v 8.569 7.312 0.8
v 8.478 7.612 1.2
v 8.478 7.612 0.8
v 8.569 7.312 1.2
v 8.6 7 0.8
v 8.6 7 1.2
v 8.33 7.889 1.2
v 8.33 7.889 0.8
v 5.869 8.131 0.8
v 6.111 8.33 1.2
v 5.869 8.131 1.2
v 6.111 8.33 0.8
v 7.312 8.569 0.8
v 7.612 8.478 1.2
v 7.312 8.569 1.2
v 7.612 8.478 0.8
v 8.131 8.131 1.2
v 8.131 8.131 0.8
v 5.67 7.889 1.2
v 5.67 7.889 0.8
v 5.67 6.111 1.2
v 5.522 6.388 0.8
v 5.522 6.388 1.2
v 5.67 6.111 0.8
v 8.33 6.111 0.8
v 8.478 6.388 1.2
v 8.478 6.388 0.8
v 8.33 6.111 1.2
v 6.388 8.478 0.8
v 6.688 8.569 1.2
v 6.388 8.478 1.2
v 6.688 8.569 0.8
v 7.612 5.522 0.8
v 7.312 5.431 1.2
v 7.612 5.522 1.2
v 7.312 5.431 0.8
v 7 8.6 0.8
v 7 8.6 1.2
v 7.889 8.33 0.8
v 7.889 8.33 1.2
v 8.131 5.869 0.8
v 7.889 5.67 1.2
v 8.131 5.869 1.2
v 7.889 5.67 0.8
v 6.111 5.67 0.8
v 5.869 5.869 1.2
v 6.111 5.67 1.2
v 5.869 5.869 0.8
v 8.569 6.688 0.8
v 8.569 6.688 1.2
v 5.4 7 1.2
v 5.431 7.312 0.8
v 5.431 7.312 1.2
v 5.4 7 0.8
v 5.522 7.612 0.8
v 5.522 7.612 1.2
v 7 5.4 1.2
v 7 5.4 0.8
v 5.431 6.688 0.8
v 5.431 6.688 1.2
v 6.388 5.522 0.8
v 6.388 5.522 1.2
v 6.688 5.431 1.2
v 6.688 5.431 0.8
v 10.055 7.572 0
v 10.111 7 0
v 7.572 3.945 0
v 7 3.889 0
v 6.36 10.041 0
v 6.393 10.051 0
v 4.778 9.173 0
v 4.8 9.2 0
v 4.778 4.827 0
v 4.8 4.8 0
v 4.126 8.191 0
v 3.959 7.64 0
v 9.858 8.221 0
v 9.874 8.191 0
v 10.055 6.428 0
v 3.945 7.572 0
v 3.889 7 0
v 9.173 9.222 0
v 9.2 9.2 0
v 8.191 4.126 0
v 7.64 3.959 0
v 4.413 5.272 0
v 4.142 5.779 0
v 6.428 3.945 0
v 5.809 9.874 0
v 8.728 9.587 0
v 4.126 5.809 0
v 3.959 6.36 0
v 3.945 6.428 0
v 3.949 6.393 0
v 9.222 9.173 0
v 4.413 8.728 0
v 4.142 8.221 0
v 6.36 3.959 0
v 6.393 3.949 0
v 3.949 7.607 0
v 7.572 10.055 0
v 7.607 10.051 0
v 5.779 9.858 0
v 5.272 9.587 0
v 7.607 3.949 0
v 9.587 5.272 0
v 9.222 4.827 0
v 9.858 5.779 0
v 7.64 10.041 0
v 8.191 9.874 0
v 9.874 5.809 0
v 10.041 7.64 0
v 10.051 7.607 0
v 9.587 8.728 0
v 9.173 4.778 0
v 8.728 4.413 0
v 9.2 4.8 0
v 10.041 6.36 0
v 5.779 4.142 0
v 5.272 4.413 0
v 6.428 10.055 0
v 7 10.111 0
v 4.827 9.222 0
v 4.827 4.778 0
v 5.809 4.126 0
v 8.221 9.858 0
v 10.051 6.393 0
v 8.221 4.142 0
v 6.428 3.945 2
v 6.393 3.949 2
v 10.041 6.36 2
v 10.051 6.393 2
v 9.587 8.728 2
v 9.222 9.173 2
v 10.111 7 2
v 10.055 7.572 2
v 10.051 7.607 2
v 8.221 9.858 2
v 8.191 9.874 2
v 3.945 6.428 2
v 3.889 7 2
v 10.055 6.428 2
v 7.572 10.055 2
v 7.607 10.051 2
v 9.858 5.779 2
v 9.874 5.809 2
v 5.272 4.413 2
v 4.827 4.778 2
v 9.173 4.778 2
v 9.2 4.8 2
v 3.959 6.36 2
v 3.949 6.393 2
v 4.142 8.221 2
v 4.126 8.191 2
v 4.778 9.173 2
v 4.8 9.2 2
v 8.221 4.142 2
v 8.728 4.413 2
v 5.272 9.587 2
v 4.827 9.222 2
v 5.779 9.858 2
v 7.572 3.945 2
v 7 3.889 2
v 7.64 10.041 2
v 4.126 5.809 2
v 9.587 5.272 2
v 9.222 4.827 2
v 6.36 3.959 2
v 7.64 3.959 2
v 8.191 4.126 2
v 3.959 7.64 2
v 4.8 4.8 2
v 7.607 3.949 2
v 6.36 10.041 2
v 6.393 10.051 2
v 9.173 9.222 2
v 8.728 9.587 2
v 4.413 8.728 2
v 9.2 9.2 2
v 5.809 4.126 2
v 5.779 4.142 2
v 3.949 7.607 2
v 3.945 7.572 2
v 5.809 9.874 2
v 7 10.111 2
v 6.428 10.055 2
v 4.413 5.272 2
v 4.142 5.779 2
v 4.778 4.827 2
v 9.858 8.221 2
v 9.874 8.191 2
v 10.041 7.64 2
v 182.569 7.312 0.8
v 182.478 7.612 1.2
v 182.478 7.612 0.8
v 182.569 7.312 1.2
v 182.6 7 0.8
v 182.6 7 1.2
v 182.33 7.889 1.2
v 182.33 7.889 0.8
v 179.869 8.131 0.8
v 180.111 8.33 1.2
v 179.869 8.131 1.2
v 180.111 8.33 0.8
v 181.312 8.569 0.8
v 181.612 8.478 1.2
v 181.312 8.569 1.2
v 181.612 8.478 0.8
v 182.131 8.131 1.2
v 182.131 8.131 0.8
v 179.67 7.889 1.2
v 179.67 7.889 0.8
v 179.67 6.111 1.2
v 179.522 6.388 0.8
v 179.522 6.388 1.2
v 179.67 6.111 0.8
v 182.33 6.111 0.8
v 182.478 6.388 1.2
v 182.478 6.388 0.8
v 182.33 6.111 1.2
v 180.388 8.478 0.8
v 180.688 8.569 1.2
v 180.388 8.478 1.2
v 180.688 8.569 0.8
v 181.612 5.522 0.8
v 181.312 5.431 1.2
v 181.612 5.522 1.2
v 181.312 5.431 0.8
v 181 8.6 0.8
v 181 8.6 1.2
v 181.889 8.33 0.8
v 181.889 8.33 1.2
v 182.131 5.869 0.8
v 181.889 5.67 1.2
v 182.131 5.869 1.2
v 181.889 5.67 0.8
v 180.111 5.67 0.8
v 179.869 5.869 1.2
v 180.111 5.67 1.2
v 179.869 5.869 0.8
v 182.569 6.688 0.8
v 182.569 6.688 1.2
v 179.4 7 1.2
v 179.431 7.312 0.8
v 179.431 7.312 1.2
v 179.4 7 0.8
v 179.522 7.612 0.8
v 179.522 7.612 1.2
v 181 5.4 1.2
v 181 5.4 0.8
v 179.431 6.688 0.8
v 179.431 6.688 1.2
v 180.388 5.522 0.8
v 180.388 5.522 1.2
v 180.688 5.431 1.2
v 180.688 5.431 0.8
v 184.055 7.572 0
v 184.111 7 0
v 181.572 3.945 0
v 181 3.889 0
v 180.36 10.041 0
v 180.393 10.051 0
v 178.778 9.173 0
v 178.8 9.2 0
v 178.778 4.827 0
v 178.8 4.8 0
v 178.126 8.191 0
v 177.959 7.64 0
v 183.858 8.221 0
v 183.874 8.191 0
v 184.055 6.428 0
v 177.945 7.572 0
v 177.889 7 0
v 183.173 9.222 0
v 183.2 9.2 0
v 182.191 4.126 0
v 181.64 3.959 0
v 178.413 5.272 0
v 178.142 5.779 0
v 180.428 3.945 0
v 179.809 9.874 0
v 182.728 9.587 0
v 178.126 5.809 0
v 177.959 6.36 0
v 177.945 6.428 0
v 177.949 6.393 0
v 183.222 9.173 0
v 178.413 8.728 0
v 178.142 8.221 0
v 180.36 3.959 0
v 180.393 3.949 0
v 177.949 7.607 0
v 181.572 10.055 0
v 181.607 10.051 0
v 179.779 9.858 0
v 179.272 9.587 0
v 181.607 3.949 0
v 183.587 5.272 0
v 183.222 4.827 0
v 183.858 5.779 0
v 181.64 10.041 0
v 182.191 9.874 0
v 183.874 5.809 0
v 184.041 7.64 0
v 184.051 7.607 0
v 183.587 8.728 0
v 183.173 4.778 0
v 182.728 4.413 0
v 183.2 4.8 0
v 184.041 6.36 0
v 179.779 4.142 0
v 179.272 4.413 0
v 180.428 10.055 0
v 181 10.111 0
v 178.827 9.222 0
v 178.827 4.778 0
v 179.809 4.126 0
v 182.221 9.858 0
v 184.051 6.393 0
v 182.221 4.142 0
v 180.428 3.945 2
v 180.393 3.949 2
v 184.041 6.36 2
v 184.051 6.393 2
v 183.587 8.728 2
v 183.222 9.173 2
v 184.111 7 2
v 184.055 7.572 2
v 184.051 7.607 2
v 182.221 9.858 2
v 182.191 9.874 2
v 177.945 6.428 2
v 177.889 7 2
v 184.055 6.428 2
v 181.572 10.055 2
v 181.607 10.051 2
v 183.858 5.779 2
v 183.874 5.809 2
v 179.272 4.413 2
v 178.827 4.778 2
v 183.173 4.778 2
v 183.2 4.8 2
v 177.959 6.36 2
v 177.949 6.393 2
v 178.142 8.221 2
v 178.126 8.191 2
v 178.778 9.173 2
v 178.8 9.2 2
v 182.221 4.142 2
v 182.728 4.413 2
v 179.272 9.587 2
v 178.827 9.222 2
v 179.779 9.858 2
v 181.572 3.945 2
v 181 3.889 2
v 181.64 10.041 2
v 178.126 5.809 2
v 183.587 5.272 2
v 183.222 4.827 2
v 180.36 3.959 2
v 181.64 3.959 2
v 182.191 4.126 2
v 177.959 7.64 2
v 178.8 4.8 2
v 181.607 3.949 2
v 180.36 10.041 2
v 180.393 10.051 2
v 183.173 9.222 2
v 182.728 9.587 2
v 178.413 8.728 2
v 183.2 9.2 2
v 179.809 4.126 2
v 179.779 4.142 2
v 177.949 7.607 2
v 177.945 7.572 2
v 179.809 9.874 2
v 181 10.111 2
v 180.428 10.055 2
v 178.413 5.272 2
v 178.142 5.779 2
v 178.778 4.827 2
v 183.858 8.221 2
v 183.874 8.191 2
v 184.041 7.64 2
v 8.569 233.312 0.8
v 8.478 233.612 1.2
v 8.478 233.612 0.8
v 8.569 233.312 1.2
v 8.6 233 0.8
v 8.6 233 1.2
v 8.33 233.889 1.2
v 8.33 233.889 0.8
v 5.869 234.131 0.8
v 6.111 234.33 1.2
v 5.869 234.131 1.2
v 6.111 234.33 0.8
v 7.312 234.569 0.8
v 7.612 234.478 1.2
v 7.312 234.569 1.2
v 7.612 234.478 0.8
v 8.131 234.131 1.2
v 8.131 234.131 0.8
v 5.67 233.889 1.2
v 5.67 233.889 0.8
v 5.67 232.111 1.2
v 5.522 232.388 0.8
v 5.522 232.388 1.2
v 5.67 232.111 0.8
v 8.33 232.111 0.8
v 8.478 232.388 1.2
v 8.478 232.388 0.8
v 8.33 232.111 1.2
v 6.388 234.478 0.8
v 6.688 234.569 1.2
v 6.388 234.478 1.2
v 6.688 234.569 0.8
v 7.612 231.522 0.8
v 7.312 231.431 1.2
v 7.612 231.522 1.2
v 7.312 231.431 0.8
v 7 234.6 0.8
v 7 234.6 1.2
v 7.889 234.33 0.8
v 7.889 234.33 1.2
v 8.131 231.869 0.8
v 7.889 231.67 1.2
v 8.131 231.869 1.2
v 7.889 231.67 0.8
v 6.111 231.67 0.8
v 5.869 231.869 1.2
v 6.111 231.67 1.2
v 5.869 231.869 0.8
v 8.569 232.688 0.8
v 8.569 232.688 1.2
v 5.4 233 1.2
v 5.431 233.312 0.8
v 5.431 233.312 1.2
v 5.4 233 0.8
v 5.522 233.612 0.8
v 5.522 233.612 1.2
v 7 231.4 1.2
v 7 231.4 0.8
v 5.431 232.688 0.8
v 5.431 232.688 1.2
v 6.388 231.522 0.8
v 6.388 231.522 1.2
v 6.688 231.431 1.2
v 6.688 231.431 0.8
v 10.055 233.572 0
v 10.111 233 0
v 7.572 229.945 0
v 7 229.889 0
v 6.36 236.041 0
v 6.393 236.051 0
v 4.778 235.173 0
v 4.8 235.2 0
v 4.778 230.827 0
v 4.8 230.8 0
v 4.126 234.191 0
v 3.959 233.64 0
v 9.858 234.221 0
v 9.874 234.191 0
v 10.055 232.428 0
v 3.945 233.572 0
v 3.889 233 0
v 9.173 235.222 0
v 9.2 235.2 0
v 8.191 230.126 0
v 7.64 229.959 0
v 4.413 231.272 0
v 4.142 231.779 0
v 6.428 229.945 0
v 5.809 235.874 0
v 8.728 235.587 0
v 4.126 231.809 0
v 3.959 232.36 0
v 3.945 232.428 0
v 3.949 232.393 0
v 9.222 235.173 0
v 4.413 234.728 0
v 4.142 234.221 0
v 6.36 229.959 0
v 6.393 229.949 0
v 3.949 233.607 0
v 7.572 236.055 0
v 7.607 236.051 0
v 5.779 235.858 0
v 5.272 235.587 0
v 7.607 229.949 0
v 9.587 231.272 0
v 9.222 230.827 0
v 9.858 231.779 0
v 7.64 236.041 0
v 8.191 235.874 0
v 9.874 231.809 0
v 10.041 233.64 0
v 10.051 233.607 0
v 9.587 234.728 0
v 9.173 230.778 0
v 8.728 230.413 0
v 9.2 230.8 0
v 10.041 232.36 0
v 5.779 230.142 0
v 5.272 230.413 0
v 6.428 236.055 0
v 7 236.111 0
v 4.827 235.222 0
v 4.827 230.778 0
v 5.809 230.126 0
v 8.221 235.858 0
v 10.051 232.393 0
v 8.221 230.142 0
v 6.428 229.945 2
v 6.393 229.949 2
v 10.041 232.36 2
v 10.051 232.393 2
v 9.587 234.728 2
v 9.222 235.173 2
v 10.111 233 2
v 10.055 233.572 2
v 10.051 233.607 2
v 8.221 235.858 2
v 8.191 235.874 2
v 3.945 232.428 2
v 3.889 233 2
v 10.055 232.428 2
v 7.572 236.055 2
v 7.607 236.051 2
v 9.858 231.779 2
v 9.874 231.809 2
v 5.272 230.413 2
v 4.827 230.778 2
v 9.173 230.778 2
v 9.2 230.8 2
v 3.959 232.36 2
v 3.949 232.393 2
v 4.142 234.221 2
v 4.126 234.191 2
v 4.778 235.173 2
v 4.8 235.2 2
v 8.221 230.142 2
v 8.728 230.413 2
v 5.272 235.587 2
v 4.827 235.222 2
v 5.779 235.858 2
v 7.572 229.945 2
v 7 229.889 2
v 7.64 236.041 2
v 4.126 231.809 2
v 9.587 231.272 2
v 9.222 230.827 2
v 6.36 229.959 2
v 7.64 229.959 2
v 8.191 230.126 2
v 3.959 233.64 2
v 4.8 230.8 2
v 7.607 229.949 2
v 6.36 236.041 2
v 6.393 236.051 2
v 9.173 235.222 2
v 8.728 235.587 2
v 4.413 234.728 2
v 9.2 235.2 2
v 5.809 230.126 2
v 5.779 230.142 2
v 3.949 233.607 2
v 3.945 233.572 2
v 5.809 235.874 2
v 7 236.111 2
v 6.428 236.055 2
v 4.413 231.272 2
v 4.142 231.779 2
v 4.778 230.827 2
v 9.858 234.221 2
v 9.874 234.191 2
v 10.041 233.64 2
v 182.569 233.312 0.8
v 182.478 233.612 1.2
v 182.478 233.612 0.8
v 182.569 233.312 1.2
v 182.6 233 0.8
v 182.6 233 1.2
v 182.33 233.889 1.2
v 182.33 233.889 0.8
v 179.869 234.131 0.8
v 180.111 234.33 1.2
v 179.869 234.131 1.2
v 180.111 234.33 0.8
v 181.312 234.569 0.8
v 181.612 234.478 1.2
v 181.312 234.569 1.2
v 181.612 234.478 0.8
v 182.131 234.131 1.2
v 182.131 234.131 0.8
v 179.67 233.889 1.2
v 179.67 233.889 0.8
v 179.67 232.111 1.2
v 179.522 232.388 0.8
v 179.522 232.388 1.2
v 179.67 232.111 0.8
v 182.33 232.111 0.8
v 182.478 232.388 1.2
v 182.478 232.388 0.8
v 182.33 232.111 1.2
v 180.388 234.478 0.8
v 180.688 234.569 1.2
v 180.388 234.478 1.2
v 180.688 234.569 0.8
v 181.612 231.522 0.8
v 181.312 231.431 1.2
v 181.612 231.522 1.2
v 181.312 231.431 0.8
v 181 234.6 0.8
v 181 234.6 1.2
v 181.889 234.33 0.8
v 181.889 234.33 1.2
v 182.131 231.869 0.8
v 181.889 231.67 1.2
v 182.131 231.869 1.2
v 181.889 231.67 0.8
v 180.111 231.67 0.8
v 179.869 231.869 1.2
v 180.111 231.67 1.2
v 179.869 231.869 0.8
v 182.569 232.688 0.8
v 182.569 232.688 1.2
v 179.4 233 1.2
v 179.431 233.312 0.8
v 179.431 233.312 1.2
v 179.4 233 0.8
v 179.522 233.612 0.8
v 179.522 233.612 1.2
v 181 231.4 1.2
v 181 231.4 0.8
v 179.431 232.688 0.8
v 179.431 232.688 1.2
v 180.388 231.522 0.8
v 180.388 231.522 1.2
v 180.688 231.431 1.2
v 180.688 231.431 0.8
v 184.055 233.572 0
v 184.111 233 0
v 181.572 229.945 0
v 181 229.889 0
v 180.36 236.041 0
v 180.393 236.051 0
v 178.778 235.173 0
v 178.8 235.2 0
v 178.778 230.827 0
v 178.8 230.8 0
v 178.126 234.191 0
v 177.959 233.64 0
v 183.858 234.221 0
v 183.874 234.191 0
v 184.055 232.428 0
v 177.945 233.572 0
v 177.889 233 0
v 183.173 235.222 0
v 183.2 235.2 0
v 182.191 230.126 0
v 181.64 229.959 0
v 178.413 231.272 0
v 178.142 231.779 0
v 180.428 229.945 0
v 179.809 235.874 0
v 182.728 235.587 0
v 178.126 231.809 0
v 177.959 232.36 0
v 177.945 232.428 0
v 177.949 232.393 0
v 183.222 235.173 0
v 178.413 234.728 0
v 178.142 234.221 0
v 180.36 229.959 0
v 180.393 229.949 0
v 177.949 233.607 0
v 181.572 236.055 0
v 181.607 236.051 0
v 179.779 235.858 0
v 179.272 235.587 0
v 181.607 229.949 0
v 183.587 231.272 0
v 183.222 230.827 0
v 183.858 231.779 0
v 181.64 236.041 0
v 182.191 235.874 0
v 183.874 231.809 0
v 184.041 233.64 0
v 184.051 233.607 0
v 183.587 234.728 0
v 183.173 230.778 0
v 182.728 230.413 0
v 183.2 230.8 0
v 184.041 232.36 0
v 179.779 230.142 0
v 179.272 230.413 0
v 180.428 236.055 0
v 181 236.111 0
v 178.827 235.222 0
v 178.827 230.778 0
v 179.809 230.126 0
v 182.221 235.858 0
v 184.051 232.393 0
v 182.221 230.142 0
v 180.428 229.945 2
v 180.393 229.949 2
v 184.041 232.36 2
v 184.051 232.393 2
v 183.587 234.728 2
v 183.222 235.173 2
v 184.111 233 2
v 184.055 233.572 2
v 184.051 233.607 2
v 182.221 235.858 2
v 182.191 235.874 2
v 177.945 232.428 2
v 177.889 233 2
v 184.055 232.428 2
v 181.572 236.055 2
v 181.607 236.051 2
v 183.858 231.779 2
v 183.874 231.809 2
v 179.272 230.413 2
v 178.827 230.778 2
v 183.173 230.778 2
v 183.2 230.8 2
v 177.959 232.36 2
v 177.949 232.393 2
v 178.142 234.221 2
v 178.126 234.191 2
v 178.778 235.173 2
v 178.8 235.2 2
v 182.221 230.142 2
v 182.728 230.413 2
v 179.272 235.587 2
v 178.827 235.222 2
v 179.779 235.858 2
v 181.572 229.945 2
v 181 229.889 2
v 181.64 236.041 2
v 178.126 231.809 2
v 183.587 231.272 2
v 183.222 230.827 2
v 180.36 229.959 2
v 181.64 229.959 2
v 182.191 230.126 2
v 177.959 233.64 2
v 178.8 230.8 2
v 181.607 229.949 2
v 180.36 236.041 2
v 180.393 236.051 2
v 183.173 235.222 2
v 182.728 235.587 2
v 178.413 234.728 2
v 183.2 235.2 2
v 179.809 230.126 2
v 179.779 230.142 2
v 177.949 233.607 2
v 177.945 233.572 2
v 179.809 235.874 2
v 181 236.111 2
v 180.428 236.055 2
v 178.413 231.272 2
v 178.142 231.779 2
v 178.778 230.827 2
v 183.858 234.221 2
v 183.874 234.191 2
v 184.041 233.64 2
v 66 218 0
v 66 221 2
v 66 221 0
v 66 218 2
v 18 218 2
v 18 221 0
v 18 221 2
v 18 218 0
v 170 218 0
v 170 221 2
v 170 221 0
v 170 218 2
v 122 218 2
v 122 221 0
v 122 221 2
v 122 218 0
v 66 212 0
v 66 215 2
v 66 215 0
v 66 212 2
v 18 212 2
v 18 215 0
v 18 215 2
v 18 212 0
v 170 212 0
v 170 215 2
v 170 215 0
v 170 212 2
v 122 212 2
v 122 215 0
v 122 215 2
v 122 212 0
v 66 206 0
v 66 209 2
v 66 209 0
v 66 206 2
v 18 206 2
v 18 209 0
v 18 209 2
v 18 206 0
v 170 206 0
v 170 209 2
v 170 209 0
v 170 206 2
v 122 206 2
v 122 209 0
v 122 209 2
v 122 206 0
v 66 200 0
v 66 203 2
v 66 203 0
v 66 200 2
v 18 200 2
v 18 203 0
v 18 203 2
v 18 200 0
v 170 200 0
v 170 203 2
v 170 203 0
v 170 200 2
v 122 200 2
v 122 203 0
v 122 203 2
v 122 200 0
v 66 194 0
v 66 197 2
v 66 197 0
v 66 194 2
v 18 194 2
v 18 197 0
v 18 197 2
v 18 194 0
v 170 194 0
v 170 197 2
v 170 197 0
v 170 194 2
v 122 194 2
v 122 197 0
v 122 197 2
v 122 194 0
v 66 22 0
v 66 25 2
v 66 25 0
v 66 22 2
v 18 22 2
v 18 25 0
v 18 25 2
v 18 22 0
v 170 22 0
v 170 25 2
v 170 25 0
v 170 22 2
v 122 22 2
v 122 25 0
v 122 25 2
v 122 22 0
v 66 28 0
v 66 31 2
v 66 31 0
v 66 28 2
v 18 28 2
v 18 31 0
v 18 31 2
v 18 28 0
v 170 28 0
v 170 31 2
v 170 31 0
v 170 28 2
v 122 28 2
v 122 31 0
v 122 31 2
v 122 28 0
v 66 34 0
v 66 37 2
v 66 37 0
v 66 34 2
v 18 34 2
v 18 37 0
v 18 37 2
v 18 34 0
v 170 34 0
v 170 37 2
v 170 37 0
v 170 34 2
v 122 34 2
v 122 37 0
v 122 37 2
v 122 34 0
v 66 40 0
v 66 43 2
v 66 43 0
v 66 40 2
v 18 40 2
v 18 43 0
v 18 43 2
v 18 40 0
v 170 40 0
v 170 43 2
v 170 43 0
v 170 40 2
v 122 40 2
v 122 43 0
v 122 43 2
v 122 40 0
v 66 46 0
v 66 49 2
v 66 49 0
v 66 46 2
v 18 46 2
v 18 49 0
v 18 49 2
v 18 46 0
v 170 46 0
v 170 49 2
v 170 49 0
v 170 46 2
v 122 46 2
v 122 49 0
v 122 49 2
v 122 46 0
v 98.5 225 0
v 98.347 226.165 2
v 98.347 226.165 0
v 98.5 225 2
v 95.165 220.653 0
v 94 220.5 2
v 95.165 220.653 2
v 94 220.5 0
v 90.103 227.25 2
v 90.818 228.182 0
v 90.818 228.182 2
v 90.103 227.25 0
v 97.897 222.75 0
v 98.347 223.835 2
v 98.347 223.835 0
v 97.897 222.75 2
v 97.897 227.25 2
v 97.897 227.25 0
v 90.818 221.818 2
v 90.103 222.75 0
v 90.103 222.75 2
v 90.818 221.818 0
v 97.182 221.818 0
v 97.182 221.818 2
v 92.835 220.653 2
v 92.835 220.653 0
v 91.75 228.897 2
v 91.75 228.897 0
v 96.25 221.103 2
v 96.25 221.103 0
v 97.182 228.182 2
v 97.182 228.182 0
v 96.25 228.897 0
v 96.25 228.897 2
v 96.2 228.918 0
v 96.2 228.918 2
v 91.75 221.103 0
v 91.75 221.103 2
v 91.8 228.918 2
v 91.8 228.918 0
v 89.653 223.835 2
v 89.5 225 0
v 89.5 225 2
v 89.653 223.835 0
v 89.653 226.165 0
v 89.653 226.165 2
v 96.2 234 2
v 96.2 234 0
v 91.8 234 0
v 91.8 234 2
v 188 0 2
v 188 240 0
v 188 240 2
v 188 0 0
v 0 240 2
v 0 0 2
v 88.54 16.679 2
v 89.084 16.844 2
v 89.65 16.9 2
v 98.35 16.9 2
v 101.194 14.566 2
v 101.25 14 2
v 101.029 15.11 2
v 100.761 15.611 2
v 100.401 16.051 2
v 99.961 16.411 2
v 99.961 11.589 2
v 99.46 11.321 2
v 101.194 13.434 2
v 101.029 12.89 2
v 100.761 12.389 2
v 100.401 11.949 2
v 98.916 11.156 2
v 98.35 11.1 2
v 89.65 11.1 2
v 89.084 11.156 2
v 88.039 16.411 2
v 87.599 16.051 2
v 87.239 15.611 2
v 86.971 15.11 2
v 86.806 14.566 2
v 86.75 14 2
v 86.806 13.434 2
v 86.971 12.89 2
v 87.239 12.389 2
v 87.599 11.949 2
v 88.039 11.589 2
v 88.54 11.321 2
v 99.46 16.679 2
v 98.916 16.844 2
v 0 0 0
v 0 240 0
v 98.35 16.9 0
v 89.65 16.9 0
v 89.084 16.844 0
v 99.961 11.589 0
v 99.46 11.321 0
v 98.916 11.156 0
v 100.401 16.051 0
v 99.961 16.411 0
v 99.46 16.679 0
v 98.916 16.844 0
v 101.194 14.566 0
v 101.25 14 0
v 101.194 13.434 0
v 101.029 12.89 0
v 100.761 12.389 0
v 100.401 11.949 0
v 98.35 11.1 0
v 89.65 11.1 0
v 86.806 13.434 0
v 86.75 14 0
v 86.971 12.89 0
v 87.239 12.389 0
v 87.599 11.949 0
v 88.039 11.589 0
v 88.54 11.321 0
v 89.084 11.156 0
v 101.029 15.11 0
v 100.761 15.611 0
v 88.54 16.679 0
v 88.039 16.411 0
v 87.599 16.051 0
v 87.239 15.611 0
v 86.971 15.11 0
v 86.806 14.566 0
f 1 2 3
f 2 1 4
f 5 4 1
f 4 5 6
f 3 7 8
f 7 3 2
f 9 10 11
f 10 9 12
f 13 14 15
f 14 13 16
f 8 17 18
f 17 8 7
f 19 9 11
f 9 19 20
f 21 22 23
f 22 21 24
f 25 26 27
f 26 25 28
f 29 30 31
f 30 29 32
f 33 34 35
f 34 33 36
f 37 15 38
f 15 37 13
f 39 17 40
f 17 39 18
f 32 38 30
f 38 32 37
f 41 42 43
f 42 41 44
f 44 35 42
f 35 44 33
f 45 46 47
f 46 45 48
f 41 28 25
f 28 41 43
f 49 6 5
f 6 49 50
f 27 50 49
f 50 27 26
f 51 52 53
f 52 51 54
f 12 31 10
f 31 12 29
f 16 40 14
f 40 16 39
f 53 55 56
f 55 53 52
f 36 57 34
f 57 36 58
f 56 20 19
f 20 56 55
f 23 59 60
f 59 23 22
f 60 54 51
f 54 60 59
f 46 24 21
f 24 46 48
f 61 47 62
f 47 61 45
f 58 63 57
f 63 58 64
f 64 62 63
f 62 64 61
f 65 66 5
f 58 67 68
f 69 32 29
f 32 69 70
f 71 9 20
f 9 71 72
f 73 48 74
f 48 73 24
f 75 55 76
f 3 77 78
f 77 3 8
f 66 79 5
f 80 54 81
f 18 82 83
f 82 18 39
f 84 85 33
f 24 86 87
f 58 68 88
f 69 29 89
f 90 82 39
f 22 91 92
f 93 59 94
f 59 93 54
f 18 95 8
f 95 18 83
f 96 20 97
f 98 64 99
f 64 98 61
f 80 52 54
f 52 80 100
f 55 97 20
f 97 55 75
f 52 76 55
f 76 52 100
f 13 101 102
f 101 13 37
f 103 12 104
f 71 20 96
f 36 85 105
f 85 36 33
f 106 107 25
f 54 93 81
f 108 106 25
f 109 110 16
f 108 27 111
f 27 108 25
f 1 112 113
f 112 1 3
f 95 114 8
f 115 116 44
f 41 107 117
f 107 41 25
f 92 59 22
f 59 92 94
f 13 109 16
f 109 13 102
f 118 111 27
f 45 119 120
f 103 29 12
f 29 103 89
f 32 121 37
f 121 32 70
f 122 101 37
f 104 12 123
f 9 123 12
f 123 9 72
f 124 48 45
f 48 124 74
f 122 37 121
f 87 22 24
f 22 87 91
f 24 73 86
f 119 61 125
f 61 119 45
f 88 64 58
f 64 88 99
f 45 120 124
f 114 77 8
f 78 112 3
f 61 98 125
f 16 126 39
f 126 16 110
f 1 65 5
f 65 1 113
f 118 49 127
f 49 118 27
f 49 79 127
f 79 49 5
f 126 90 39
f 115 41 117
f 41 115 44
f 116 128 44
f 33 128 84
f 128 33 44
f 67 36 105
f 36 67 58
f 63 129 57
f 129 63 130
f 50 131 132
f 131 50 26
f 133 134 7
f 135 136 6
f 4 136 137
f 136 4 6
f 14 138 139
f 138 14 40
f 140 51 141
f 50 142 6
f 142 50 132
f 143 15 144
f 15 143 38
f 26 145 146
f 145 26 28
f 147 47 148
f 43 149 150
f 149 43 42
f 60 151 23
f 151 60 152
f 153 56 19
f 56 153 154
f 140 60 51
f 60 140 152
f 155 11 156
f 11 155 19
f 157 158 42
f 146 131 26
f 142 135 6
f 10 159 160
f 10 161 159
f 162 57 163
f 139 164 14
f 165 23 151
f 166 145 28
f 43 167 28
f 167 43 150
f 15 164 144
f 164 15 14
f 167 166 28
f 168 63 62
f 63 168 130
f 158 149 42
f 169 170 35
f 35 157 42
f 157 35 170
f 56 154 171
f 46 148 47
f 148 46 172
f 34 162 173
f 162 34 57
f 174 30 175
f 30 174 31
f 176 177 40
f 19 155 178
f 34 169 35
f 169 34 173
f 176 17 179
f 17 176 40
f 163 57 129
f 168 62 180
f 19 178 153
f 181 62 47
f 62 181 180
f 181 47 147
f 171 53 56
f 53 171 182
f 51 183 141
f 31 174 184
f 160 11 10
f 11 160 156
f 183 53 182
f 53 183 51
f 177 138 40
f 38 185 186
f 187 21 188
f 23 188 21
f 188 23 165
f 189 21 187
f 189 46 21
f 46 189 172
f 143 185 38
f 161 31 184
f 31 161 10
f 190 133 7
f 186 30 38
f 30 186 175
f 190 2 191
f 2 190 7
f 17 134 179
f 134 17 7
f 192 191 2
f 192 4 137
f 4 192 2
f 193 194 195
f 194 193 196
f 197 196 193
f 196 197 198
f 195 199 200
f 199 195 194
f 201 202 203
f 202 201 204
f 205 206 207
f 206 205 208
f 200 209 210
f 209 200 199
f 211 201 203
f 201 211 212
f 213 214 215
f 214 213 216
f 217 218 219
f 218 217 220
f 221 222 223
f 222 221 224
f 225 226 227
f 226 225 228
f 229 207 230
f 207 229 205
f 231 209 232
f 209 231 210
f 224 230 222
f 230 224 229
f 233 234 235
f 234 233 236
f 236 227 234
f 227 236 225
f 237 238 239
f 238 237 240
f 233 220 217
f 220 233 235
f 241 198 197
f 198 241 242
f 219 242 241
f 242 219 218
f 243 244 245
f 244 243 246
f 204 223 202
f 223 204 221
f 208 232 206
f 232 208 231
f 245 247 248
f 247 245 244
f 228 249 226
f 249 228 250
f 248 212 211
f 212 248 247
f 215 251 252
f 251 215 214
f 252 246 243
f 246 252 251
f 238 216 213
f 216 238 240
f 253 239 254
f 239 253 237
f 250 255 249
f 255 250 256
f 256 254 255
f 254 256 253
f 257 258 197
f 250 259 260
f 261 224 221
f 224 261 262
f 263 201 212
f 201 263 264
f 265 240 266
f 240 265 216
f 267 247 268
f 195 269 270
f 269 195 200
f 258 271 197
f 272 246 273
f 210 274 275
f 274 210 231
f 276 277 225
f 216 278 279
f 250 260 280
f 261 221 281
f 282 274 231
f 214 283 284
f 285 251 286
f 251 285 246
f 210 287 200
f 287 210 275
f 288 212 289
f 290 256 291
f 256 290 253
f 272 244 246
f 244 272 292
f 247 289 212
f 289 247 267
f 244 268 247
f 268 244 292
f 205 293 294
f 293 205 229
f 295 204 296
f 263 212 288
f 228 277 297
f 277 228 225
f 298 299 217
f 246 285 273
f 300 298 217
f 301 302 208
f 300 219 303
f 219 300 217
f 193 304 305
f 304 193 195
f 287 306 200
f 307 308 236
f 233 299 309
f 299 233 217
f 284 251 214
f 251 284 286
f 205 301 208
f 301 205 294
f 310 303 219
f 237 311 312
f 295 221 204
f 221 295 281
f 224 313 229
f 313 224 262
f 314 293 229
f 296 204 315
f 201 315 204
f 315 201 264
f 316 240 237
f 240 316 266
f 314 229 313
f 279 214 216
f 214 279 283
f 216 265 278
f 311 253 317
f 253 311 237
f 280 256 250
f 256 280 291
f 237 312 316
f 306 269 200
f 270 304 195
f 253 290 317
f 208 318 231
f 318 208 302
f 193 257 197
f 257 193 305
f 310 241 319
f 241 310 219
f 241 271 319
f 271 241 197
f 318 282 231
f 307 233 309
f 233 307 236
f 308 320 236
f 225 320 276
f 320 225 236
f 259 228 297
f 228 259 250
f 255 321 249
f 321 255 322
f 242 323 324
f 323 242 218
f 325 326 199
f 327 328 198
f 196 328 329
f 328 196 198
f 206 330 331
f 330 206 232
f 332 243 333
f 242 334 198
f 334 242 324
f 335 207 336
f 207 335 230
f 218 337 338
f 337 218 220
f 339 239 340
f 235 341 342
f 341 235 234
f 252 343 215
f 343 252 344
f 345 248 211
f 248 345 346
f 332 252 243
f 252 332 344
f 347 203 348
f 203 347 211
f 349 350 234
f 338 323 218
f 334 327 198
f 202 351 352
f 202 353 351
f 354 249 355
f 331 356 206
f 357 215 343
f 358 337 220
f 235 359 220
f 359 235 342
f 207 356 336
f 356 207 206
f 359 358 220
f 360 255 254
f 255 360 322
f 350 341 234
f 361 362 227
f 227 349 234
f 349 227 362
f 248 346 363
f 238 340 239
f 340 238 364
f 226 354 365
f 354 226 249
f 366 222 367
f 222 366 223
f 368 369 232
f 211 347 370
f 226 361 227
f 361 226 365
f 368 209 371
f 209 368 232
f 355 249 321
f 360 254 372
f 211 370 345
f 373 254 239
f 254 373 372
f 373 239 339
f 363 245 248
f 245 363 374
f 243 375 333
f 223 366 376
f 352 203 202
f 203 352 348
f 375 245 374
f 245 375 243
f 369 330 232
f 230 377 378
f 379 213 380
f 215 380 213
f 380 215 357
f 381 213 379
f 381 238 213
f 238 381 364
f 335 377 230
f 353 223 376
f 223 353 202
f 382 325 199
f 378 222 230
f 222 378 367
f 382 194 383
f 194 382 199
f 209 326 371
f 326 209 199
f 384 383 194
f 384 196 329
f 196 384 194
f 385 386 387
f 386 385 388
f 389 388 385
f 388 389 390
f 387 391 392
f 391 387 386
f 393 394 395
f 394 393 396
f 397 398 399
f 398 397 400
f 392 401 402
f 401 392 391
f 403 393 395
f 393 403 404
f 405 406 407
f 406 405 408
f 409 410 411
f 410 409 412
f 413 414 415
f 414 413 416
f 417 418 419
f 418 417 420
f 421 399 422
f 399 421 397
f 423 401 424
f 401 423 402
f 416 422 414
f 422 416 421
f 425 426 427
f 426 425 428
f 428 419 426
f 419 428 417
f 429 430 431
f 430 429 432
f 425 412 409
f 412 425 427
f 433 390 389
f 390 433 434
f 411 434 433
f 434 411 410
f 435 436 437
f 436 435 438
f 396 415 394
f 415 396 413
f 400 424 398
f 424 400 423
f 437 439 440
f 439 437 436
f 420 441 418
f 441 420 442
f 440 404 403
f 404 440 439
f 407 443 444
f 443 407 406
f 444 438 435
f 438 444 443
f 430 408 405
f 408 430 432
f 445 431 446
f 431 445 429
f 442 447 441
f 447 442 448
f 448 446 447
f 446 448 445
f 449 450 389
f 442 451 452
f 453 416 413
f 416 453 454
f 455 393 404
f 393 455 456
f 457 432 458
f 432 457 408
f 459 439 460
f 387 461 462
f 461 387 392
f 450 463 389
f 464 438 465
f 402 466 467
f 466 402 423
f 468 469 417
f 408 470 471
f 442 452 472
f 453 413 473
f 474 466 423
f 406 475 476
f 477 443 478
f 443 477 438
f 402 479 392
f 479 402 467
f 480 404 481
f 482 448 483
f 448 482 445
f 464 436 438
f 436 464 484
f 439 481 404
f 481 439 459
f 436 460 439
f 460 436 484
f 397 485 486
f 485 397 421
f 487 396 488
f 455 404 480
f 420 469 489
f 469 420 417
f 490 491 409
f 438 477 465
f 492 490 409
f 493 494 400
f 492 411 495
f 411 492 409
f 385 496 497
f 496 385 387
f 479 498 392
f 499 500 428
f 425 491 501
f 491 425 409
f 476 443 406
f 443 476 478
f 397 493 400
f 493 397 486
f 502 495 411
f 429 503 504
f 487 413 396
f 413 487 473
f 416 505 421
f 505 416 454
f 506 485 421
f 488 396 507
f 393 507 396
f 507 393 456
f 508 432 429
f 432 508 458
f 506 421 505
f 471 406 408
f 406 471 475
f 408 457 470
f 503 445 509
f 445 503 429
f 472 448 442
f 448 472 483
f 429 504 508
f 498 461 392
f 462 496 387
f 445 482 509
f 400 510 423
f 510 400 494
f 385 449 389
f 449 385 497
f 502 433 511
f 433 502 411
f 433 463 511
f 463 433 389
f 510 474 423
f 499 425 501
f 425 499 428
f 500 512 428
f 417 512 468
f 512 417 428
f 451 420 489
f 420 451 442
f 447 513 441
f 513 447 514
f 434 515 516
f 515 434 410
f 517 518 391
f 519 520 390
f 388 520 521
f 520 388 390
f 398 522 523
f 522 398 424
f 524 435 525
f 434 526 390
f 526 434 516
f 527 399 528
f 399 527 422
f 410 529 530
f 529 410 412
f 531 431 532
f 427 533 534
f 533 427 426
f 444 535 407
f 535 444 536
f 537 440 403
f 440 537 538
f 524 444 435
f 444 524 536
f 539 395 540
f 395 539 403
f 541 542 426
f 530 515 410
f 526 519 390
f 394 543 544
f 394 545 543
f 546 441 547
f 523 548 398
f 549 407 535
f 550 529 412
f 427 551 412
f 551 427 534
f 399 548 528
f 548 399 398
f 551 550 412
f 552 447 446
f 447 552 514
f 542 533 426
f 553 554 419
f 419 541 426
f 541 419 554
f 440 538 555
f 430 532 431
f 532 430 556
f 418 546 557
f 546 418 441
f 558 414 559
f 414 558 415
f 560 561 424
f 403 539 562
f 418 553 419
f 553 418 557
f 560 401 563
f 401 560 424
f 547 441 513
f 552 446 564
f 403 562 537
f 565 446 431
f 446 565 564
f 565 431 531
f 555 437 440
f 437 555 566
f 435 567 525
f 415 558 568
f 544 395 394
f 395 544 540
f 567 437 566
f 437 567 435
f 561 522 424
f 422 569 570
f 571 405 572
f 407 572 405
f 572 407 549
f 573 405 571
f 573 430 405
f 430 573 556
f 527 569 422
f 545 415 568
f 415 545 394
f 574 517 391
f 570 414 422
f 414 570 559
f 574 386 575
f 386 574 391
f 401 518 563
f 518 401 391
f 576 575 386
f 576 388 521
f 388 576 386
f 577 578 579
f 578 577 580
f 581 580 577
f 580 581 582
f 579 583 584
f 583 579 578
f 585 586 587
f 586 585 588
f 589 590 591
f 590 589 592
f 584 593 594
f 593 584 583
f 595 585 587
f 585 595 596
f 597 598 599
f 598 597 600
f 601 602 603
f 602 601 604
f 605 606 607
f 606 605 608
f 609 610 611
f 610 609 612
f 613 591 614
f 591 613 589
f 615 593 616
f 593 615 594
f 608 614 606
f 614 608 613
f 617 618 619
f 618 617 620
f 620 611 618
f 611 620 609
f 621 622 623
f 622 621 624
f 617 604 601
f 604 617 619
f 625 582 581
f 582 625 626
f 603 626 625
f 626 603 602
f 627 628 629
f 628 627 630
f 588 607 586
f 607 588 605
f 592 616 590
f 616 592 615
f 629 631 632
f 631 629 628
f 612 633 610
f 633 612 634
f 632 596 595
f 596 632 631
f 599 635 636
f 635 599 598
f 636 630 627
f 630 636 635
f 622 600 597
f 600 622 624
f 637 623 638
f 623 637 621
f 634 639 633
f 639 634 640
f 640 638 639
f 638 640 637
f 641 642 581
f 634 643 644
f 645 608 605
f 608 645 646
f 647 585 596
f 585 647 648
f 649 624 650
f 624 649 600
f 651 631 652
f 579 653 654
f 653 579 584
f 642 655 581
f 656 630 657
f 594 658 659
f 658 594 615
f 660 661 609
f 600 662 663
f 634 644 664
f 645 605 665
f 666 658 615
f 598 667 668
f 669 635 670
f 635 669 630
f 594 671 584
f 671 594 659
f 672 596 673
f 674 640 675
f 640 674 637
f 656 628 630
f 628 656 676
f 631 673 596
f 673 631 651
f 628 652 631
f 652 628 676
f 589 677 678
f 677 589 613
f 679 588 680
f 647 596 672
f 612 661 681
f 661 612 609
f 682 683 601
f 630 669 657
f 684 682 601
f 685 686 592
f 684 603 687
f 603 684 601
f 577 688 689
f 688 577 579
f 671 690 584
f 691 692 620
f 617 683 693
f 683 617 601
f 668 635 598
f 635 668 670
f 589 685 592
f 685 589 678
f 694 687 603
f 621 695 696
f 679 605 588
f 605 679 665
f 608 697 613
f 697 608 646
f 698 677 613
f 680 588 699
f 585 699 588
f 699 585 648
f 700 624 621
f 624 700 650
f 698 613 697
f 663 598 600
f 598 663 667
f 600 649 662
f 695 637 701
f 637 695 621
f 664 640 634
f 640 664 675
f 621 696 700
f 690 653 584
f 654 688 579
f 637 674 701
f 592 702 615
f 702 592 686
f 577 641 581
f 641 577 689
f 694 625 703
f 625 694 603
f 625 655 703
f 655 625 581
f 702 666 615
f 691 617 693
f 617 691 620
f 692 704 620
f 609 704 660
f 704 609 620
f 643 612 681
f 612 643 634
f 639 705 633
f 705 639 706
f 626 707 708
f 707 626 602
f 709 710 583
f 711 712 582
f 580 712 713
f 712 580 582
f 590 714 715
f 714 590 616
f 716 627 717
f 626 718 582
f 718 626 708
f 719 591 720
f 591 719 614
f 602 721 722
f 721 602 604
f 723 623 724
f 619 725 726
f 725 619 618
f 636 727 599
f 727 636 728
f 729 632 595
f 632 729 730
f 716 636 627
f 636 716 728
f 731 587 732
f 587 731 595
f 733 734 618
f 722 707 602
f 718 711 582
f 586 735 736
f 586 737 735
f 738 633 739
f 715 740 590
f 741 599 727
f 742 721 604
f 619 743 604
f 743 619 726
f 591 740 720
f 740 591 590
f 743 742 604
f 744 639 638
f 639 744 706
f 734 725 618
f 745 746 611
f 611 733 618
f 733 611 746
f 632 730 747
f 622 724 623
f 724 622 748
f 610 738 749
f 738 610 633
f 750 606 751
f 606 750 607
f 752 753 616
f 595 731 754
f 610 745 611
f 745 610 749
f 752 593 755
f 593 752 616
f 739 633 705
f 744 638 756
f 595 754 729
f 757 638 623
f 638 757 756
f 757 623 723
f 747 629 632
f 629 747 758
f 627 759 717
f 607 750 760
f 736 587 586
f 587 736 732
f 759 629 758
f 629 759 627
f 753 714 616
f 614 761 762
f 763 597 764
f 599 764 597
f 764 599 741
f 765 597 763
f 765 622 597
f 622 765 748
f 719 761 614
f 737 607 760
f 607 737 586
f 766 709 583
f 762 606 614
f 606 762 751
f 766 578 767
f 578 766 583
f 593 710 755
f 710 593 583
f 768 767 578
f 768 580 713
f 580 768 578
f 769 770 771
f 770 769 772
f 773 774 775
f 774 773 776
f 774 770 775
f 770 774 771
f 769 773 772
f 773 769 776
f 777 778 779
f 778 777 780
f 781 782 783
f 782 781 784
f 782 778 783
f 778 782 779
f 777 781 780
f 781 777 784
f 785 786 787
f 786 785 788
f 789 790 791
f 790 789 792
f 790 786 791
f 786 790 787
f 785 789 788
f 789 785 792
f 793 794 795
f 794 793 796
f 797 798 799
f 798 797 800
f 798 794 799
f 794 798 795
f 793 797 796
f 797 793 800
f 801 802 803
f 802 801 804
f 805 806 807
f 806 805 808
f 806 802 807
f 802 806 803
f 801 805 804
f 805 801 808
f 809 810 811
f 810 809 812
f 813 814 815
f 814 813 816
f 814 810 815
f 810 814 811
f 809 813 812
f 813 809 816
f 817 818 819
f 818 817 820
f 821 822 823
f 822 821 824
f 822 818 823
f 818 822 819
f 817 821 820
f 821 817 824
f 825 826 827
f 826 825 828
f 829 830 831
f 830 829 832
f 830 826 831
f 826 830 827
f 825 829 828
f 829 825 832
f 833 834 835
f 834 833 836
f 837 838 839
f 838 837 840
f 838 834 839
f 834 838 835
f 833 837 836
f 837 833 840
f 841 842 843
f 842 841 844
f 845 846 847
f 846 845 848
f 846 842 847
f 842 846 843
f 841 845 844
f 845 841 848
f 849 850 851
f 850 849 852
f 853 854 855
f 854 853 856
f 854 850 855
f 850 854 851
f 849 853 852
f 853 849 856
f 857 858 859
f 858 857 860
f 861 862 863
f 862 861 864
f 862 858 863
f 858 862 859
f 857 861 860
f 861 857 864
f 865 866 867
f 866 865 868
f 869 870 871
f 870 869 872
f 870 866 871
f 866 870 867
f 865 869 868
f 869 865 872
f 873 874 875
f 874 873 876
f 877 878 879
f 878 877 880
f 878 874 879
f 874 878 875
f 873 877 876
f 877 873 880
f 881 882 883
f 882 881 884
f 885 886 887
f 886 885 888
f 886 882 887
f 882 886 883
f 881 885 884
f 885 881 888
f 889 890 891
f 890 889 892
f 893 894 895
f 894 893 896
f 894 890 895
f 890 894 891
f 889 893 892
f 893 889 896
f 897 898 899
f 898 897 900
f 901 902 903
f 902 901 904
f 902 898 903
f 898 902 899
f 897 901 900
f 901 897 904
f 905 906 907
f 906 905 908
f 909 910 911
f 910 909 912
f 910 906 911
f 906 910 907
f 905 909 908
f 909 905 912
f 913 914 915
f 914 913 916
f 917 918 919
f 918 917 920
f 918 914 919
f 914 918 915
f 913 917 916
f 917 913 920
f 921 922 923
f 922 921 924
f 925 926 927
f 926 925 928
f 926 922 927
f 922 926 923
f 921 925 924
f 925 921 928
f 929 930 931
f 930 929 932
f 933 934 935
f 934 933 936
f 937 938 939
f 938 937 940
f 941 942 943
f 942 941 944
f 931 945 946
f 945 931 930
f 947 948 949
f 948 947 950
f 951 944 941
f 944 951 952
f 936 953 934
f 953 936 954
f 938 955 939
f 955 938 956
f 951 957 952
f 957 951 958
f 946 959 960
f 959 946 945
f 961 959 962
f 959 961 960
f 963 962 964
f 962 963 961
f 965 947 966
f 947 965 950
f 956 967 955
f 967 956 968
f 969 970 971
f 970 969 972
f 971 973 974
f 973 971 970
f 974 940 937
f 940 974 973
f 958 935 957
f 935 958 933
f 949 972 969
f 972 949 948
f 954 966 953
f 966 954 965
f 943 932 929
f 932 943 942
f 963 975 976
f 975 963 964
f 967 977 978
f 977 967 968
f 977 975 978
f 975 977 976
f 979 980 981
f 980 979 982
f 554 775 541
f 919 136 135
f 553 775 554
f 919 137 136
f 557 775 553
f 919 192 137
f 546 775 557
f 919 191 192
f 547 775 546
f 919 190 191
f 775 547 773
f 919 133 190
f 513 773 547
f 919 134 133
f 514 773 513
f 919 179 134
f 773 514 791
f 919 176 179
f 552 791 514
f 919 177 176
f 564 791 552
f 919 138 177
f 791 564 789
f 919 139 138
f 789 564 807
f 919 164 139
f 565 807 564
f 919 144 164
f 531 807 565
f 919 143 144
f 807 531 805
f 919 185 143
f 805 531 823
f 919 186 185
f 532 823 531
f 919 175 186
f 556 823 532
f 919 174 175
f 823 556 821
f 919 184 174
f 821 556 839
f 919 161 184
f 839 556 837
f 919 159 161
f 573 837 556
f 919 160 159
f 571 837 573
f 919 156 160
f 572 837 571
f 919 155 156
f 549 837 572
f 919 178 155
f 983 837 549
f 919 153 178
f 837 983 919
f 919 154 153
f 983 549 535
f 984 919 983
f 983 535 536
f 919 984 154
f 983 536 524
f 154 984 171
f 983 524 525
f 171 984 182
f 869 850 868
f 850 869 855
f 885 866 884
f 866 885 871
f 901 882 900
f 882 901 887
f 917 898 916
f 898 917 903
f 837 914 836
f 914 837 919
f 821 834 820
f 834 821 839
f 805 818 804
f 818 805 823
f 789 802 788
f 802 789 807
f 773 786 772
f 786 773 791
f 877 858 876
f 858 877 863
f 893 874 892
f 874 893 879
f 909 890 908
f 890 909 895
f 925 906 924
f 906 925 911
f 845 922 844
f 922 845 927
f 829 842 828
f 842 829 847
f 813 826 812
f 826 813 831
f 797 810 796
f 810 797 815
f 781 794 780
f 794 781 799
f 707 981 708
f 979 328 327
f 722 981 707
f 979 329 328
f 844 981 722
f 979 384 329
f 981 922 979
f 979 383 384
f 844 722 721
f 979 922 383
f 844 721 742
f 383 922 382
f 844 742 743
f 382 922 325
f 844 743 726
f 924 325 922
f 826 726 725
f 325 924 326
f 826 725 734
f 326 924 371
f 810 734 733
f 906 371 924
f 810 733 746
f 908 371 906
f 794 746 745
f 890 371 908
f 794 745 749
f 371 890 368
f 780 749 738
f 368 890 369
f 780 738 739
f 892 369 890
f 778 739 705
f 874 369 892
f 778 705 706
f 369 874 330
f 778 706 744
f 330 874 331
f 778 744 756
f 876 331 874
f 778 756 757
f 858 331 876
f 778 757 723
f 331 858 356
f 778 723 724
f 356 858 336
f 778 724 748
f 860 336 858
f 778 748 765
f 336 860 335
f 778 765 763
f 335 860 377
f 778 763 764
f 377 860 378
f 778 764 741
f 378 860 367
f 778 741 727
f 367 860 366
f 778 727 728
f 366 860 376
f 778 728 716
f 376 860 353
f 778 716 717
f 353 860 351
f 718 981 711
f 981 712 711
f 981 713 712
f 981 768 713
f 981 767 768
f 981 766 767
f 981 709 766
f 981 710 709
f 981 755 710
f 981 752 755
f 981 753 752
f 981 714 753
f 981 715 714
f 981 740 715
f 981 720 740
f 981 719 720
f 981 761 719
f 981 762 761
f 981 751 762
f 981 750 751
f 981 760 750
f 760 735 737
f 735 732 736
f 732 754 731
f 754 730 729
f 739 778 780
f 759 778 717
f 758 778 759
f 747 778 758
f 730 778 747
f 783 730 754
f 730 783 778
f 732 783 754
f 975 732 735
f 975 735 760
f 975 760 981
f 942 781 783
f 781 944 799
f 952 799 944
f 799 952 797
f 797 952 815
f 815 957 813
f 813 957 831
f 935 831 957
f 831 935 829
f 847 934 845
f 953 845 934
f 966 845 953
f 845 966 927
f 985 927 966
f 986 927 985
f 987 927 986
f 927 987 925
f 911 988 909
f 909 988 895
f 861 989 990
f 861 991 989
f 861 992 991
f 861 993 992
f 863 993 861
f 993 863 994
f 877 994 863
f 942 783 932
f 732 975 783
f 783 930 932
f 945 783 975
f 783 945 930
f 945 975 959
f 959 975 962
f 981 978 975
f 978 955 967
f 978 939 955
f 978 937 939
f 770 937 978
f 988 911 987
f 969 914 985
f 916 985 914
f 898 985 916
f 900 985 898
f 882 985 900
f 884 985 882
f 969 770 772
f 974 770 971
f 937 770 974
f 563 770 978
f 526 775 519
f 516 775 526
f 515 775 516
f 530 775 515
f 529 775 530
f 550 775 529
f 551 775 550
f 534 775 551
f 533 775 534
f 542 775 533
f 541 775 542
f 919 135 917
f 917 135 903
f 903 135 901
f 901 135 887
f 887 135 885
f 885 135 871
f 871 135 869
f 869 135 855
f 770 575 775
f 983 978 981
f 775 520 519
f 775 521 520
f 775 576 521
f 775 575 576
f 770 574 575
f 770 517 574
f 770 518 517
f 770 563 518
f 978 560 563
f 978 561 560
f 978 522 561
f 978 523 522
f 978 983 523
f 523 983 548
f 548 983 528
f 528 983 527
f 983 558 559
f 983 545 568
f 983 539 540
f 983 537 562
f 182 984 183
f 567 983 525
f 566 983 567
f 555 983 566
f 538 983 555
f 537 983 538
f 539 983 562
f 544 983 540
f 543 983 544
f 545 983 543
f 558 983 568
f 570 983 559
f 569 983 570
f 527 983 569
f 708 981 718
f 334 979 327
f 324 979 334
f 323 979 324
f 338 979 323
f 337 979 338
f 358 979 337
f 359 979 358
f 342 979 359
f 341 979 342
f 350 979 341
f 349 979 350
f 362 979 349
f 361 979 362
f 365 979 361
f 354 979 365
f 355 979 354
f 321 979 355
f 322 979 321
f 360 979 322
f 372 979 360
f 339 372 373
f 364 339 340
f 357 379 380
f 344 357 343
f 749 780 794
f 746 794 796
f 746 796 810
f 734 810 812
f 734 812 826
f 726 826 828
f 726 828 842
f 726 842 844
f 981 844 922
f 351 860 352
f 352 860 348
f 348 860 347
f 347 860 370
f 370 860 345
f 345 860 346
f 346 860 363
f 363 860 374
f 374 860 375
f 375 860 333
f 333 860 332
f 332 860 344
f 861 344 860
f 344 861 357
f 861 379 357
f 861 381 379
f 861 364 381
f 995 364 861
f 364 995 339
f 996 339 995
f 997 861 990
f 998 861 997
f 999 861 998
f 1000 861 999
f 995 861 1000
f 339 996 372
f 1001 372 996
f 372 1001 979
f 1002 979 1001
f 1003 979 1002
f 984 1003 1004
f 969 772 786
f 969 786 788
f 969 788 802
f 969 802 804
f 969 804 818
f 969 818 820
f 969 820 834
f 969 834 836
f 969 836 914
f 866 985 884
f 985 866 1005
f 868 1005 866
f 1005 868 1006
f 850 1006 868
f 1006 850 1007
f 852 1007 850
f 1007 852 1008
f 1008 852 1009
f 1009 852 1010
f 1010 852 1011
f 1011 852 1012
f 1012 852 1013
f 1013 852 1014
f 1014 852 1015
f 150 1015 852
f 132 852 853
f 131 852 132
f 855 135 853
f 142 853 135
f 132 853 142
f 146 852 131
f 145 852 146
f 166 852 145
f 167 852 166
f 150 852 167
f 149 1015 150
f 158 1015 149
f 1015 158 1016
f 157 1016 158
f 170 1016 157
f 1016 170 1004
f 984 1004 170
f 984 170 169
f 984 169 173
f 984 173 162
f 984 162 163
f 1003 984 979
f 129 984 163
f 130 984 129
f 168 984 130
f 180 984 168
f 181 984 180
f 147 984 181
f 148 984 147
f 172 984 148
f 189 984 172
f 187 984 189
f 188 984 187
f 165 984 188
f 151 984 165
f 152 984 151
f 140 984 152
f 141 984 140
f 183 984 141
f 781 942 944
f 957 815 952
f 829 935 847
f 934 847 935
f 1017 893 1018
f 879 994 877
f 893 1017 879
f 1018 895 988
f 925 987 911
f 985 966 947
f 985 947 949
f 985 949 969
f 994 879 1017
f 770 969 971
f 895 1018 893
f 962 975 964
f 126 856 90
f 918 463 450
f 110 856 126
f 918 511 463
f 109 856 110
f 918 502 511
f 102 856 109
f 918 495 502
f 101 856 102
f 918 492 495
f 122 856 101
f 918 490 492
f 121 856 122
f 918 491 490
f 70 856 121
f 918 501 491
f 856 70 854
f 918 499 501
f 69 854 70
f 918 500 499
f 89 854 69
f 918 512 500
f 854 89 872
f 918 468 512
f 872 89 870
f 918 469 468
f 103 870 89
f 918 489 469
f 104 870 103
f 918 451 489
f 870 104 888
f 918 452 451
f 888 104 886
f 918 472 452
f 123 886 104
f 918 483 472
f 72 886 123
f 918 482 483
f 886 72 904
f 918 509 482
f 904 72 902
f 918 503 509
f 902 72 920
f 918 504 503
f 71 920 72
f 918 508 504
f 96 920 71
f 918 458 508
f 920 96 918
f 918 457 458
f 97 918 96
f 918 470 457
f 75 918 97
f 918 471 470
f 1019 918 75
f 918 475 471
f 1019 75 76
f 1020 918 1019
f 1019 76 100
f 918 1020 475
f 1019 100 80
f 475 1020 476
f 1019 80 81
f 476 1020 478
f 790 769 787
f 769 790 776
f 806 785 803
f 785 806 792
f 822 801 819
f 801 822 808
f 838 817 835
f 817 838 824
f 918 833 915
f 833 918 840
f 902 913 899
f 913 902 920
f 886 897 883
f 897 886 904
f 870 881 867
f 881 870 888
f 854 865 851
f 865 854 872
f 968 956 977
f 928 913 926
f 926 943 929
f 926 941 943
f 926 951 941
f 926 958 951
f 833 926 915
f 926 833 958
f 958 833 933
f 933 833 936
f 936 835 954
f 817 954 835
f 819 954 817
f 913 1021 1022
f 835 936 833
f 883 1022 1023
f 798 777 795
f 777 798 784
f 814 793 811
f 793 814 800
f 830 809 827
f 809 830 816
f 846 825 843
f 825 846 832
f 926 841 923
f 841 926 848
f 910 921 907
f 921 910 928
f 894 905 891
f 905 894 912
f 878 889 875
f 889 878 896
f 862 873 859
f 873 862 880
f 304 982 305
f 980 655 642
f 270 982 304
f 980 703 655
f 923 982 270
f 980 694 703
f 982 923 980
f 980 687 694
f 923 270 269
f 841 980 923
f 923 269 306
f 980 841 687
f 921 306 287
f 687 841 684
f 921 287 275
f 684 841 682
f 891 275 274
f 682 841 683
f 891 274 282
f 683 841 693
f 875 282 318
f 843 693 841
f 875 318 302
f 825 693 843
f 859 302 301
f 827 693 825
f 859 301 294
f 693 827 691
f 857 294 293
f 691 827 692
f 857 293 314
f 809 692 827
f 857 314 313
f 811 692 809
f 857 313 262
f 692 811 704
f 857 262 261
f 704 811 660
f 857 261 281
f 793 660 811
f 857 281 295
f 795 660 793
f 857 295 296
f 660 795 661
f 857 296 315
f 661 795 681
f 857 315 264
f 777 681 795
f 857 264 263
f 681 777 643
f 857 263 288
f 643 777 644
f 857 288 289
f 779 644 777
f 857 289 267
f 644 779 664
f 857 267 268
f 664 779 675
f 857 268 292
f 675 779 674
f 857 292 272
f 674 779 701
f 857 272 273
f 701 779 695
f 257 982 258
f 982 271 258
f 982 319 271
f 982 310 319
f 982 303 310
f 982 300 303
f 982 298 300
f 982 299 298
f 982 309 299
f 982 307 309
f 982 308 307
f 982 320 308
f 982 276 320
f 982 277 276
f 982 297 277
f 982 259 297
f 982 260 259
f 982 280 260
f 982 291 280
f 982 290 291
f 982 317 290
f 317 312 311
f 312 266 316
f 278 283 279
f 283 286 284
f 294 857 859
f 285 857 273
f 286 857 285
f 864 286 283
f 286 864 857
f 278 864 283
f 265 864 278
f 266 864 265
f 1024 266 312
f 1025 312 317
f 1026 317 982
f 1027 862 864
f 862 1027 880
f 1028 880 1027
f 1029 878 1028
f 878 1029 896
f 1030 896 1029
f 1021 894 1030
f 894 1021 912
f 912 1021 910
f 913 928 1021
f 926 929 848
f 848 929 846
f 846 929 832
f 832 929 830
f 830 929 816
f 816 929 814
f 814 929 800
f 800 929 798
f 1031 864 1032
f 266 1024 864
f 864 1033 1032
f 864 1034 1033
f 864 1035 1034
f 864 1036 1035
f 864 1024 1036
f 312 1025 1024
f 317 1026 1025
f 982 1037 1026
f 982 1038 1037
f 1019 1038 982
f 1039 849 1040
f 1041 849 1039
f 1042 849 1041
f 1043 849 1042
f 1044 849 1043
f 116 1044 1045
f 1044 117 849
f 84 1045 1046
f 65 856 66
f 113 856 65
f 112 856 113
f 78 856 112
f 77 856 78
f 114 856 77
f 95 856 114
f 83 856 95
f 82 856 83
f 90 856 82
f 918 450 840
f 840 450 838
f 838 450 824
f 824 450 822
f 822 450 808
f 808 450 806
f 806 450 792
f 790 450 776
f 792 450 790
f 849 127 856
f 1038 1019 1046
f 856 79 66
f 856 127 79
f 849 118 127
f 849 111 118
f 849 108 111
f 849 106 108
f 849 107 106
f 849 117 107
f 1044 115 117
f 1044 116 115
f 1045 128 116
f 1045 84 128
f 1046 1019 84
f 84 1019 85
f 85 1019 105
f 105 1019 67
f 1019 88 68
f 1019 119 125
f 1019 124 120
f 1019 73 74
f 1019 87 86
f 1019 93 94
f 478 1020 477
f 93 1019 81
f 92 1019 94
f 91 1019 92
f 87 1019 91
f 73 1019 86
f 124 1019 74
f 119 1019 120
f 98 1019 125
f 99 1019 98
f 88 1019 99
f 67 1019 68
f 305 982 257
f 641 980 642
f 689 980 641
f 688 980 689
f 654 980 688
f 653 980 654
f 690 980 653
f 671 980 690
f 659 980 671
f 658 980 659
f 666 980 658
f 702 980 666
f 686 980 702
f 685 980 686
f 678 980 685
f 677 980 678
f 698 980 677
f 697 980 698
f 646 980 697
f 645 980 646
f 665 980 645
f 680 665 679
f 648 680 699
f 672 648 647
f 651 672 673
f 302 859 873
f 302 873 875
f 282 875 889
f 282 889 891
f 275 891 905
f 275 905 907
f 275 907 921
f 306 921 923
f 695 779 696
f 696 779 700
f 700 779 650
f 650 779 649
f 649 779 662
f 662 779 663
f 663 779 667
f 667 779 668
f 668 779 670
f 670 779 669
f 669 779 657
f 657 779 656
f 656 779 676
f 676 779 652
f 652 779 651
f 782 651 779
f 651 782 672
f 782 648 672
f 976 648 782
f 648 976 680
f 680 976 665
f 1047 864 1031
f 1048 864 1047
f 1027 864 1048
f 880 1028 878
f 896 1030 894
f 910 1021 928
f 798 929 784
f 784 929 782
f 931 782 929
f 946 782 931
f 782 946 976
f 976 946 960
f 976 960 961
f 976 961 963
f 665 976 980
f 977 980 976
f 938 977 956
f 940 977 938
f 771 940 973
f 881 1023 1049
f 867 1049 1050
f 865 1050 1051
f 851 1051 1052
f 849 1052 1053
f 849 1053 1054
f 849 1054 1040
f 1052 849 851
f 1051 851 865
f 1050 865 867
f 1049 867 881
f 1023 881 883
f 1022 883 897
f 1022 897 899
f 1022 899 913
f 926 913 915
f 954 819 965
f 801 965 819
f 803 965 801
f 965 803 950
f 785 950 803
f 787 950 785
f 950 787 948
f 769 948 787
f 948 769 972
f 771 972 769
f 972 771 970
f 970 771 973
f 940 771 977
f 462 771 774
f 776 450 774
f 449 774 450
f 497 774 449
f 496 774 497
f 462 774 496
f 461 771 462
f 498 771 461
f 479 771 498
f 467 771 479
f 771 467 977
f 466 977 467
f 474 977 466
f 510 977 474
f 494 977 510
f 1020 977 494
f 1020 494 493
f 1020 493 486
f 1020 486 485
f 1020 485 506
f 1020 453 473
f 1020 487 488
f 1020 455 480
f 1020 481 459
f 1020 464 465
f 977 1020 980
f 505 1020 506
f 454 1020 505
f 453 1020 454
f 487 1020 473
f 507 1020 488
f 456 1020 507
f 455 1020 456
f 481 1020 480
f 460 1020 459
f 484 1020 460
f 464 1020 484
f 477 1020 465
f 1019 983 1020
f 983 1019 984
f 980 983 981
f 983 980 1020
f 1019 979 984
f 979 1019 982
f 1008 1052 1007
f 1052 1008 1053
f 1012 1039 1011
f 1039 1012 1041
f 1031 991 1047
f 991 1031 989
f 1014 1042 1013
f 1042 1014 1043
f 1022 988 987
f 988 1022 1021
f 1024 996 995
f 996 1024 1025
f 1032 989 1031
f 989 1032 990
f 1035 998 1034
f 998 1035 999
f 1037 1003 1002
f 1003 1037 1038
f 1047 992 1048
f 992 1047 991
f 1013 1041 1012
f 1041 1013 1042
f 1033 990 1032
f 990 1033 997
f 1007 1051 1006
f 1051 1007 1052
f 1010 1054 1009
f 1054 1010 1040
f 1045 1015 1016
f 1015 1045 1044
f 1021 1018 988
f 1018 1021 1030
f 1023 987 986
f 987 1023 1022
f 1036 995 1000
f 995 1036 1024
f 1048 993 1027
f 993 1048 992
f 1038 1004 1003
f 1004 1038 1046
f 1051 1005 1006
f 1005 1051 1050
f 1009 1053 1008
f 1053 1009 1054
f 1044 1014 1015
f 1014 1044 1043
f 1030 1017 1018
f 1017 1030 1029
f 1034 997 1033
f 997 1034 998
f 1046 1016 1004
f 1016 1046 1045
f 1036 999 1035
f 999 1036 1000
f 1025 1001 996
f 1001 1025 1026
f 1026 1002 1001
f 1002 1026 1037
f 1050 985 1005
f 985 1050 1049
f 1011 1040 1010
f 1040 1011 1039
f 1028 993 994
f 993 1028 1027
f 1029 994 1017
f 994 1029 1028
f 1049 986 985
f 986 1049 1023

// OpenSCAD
// ==============================================================================
// WORDCLOCK ESP32 - OPCION 1: TAPA TRASERA SUPERPUESTA (PARA MARCO YA IMPRESO)
// PIEZA 3: TAPA SUPERPUESTA DE 188.0 x 240.0 mm
// Offset de tornillos: 7.0 mm (Coincide EXACTAMENTE con la impresión física realizada)
// Avellanado simétrico (doble cara) para que la cabeza del tornillo encaje sin importar el lado
// ==============================================================================

box_w       = 188.0;   // Ancho exterior completo (188 mm)
box_h       = 240.0;   // Alto exterior completo (240 mm)
wall_thick  = 3.0;     // Pared de 3.0 mm coincidente con el marco impreso
lid_thick   = 2.0;     // Grosor de la tapa

// Centro de tornillos a 7.0 mm desde las esquinas exteriores
screw_off   = wall_thick + 4.0; // 3.0 + 4.0 = 7.0 mm

module double_countersunk_hole(h = 2.0) {
    union() {
        // Pasante central M3
        translate([0, 0, -0.1]) cylinder(r = 1.6, h = h + 0.2, $fn = 32);
        
        // Avellanado Cara A (Cono de 1.6 mm a 3.3 mm en los primeros 0.9 mm)
        translate([0, 0, -0.1]) cylinder(r1 = 3.3, r2 = 1.6, h = 0.9, $fn = 32);
        
        // Avellanado Cara B (Cono de 1.6 mm a 3.3 mm en los últimos 0.9 mm)
        translate([0, 0, h - 0.8]) cylinder(r1 = 1.6, r2 = 3.3, h = 0.9, $fn = 32);
    }
}

module wordclock_back_lid() {
    difference() {
        // 1. Placa Base de la Tapa (188.0 x 240.0 x 2.0 mm)
        cube([box_w, box_h, lid_thick]);

        // 2. Orificios M3 con Avellanado Doble Cara (Offset exacto 7.0 mm)
        translate([screw_off, screw_off, 0])                 double_countersunk_hole(lid_thick);
        translate([box_w - screw_off, screw_off, 0])         double_countersunk_hole(lid_thick);
        translate([screw_off, box_h - screw_off, 0])         double_countersunk_hole(lid_thick);
        translate([box_w - screw_off, box_h - screw_off, 0]) double_countersunk_hole(lid_thick);

        // 3. Ranuras de Ventilación Superior
        for (i = [0 : 4]) {
            y_slot = box_h - 22 - (i * 6);
            translate([18, y_slot, -0.1])         cube([48, 3.0, lid_thick + 0.2]);
            translate([box_w - 66, y_slot, -0.1]) cube([48, 3.0, lid_thick + 0.2]);
        }

        // 4. Ranuras de Ventilación Inferior
        for (i = [0 : 4]) {
            y_slot = 22 + (i * 6);
            translate([18, y_slot, -0.1])         cube([48, 3.0, lid_thick + 0.2]);
            translate([box_w - 66, y_slot, -0.1]) cube([48, 3.0, lid_thick + 0.2]);
        }

        // 5. RANURA USB-C OBLONGA / PANELSOCKET (14.5 x 5.8 mm con r = 2.9 mm)
        translate([box_w / 2, 14.0, -0.1]) {
            hull() {
                translate([-4.35, 0, 0]) cylinder(r = 2.9, h = lid_thick + 0.2, $fn = 32);
                translate([ 4.35, 0, 0]) cylinder(r = 2.9, h = lid_thick + 0.2, $fn = 32);
            }
        }

        // 6. Muesca de cerradura (Keyhole) para colgar en pared
        translate([box_w / 2, box_h - 15, -0.1]) {
            union() {
                cylinder(r = 4.5, h = lid_thick + 0.2, $fn = 24);
                translate([-2.2, 0, 0]) cube([4.4, 9.0, lid_thick + 0.2]);
            }
        }
    }
}

wordclock_back_lid();
